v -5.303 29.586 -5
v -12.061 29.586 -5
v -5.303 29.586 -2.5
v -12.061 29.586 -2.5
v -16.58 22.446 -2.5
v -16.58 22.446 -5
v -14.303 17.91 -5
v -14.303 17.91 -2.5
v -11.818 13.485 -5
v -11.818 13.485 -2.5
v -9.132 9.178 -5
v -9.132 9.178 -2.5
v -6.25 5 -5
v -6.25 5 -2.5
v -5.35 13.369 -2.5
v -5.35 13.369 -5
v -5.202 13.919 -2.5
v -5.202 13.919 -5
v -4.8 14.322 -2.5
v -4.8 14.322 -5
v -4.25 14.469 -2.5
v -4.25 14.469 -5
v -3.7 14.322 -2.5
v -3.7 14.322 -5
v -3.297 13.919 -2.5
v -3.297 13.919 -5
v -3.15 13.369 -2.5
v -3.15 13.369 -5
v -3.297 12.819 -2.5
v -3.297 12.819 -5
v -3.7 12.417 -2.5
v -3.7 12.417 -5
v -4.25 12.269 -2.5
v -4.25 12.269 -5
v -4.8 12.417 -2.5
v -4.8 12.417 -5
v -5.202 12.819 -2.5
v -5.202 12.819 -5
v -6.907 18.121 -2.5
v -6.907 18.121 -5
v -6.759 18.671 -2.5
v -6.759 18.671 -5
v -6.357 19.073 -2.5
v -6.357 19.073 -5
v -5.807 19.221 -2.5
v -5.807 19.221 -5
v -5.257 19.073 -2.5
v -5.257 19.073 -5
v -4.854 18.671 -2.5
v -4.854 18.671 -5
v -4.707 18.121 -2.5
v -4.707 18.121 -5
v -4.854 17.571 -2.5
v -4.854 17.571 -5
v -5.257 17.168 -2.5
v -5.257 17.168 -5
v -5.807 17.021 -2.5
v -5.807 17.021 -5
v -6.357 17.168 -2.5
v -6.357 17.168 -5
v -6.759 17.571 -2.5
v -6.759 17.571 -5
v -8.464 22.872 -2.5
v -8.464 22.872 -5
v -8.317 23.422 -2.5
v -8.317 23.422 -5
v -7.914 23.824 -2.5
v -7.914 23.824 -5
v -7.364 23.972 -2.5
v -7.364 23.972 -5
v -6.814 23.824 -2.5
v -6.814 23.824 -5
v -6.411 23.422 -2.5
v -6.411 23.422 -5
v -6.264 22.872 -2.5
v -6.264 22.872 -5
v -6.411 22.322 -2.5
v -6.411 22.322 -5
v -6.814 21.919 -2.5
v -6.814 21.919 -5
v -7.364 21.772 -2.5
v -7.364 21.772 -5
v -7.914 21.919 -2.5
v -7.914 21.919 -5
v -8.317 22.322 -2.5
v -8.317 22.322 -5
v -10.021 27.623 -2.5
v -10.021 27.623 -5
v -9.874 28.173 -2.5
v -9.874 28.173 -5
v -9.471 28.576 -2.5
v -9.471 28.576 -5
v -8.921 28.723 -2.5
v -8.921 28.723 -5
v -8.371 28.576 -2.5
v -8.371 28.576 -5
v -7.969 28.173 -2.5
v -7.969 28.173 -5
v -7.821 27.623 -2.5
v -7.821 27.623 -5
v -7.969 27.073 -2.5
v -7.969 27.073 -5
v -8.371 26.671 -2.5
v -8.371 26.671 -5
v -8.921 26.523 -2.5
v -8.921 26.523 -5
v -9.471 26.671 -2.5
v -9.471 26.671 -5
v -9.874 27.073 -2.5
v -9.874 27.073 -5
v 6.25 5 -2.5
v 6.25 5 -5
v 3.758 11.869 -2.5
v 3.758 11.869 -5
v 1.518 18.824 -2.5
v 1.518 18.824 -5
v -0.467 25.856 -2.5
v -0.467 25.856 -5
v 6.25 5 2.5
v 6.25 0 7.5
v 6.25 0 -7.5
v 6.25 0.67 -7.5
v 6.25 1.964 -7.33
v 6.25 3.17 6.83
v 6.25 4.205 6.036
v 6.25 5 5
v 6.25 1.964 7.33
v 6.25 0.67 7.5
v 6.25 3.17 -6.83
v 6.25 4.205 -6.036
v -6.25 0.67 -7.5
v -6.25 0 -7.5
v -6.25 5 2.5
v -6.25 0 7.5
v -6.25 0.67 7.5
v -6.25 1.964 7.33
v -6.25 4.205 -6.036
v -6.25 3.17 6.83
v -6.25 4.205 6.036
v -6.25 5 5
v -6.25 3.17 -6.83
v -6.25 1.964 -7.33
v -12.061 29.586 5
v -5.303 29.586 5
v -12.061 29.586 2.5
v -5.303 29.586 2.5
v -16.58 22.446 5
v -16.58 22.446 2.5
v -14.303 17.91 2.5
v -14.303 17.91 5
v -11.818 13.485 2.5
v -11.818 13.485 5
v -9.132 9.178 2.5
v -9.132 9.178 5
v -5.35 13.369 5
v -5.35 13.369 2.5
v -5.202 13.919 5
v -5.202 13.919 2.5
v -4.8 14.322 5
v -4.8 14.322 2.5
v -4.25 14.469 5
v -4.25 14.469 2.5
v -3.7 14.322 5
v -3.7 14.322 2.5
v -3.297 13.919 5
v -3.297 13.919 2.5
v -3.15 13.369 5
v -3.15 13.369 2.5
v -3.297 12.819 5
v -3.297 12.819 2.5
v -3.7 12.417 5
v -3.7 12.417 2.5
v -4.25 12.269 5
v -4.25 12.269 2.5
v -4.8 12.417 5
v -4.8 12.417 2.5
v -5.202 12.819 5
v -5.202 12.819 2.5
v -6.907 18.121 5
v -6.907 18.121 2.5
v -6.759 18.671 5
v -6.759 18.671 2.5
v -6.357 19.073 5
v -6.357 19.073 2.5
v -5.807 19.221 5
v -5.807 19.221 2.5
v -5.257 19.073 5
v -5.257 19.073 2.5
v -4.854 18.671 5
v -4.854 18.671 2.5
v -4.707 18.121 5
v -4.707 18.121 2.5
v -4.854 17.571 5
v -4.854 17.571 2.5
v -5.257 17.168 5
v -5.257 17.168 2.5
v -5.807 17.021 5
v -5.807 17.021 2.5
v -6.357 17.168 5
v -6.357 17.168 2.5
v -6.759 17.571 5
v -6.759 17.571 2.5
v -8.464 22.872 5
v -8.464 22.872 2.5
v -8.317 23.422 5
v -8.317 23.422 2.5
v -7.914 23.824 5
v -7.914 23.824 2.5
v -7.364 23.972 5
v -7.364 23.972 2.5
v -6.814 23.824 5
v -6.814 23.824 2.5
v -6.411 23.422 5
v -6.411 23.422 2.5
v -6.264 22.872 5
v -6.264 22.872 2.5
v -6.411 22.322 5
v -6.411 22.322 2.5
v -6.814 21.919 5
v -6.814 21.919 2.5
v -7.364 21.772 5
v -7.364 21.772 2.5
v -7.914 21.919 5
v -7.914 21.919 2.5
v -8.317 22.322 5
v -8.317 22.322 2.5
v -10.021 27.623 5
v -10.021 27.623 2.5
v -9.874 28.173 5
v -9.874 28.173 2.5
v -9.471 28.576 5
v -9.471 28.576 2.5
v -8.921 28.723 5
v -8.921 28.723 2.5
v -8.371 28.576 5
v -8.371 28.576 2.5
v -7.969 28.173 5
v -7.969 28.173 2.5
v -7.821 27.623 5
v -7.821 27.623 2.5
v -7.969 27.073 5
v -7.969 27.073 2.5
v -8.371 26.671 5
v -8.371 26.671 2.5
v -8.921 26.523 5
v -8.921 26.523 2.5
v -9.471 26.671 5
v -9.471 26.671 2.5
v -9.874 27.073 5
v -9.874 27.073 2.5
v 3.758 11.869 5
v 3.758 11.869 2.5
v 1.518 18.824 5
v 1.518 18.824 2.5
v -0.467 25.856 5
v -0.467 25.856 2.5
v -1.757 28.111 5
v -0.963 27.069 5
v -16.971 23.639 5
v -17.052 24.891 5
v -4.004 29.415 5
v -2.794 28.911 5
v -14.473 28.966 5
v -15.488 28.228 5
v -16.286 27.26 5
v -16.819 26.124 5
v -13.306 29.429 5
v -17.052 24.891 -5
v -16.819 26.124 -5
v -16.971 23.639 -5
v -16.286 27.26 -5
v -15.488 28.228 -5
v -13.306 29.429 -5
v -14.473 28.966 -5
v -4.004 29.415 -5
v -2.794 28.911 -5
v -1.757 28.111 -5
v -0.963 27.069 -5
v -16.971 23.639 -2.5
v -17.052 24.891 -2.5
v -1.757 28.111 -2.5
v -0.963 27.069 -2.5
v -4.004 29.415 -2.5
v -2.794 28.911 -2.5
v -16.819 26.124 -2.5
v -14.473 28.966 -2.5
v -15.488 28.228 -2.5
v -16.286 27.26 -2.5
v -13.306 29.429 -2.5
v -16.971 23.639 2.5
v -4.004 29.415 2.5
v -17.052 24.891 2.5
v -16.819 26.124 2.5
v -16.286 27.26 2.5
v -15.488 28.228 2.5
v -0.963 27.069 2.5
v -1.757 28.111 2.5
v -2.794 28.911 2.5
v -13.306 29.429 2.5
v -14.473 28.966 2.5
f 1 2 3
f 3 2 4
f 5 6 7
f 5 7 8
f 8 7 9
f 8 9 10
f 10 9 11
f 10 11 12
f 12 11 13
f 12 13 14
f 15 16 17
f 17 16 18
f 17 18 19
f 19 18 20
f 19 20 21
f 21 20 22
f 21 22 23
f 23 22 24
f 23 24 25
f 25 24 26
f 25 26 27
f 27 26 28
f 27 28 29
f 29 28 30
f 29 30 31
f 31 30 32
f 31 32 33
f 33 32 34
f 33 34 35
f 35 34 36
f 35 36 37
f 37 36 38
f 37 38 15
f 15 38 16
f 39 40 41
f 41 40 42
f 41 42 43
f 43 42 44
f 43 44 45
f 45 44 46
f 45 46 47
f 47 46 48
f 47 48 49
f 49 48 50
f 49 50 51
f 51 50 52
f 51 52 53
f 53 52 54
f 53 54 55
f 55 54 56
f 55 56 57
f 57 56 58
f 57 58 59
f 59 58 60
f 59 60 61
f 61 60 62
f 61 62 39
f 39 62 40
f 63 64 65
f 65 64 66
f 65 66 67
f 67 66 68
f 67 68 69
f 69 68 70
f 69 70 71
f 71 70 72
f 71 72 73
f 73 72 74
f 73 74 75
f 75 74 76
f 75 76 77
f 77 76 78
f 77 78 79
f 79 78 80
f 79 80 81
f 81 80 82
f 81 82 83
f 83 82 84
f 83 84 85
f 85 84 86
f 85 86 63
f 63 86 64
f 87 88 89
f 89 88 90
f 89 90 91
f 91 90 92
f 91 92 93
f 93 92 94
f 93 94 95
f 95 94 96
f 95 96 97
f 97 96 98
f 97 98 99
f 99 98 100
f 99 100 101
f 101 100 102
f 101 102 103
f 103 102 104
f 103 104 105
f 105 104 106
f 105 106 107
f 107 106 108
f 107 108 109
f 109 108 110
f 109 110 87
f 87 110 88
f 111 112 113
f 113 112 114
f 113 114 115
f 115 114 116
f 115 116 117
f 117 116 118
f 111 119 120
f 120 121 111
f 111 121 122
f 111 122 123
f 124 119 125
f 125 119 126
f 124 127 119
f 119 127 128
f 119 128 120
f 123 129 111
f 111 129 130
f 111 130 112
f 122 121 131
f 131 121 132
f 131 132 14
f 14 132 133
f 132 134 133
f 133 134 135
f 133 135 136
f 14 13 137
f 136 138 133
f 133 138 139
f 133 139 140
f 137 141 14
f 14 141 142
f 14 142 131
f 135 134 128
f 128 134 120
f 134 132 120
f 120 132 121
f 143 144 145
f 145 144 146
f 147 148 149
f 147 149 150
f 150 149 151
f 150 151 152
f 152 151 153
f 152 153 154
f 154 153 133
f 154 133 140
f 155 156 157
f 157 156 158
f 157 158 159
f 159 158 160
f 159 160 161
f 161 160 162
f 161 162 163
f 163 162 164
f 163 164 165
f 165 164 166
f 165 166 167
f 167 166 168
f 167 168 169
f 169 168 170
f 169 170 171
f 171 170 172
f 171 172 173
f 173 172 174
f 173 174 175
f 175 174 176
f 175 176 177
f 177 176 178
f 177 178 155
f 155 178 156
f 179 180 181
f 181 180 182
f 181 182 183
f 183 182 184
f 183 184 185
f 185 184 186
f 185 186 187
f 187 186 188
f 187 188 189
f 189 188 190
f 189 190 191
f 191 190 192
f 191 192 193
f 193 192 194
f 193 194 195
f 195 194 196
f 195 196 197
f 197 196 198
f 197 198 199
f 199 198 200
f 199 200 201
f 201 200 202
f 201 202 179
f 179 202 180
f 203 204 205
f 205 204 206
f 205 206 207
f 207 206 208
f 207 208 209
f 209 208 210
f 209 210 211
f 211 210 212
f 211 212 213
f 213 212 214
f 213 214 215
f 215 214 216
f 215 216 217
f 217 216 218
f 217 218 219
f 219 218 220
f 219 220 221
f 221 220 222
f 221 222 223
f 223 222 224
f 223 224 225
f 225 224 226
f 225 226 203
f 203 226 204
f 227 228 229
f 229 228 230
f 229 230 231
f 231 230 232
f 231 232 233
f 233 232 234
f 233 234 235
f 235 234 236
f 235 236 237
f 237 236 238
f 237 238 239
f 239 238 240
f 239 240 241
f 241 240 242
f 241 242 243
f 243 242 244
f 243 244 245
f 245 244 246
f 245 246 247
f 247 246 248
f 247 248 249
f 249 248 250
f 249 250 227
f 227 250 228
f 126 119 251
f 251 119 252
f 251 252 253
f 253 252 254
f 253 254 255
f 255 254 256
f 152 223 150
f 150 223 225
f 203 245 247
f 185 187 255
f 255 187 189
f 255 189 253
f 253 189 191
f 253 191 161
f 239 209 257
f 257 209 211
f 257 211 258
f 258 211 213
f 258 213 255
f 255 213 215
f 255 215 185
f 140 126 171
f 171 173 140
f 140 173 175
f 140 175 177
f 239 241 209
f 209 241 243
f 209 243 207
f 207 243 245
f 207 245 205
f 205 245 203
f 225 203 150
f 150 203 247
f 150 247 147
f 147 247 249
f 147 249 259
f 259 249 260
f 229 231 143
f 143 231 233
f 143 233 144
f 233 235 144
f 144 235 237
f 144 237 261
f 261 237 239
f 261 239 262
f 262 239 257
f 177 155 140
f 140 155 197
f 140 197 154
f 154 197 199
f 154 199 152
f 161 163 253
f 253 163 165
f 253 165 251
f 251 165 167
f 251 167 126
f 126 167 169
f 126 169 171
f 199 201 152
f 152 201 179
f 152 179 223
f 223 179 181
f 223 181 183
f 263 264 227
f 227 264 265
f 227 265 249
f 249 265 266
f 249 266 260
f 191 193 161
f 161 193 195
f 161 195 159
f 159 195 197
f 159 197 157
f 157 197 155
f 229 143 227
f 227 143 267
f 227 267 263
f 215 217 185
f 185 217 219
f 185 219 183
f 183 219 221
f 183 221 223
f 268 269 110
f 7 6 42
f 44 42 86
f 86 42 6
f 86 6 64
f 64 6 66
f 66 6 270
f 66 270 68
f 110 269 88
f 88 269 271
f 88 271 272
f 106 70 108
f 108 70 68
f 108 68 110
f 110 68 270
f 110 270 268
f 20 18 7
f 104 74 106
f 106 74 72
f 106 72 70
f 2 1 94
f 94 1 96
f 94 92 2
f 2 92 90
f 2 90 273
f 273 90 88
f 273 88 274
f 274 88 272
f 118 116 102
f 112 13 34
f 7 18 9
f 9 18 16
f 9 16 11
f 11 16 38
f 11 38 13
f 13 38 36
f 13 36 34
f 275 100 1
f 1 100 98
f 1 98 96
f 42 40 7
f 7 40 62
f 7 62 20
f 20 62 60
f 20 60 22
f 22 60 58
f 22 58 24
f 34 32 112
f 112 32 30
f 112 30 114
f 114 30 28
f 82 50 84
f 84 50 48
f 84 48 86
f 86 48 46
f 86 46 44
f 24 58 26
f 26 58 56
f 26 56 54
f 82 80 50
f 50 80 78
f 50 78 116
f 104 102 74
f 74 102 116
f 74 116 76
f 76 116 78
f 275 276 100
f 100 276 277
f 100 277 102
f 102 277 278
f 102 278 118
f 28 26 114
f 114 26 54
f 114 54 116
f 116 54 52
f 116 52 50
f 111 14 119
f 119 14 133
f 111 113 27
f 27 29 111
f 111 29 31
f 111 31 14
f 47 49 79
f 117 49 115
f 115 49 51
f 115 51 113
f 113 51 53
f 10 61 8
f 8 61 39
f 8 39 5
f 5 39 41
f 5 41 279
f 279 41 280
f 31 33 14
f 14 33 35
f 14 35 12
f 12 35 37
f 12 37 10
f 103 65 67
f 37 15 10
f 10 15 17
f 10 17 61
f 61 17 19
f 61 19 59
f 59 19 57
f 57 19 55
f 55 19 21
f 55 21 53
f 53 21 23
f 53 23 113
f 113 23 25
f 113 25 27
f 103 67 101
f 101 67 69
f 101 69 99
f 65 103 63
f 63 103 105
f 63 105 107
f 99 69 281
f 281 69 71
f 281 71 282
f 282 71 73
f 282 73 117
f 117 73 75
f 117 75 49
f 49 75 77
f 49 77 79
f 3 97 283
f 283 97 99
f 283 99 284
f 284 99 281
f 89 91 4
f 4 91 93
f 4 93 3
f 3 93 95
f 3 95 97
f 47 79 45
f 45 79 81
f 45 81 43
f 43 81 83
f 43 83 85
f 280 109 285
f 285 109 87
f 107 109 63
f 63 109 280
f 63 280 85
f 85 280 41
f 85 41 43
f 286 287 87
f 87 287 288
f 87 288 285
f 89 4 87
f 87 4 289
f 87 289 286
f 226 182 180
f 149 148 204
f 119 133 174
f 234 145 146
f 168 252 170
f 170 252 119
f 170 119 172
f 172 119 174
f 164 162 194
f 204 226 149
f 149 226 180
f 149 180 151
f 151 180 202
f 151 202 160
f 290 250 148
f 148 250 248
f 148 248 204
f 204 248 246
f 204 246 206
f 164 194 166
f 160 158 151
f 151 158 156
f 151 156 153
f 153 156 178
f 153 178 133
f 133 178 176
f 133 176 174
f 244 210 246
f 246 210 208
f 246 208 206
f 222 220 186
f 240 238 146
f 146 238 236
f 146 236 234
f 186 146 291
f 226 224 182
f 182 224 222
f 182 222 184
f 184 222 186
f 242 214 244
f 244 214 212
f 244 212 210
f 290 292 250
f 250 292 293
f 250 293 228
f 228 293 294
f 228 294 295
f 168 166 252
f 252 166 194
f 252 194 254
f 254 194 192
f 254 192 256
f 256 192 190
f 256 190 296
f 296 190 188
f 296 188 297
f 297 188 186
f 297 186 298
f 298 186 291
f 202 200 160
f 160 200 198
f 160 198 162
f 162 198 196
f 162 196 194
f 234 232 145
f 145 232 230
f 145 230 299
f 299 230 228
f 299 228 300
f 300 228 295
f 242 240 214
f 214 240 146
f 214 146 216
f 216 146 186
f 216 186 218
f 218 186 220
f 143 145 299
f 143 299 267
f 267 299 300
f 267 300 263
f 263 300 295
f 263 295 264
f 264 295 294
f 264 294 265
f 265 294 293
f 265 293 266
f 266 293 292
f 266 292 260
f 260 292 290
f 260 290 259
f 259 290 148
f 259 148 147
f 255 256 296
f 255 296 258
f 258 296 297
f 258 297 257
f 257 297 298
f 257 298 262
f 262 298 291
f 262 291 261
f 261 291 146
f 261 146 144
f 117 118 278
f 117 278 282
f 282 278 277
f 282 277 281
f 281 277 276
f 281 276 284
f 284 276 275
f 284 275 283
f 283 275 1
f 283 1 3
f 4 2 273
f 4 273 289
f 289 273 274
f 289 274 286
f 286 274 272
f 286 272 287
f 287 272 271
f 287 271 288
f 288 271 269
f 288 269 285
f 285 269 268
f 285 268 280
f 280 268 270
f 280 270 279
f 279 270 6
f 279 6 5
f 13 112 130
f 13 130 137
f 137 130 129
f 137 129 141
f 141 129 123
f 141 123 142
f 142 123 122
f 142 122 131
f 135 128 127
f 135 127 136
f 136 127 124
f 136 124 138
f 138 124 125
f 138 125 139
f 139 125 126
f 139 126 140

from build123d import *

# Parameters (mm, degrees)
SKETCH1_W           = 12.5
SKETCH1_H           = 15
BOSS_EXTRUDE1_DEPTH = 5
SKETCH12_R          = 1.1
BOSS_EXTRUDE3_DEPTH = 10
CUT_EXTRUDE2_REACH  = 38.305
SKETCH13_W          = 40
SKETCH13_H          = 5
FILLET2_R           = 5


with BuildPart() as part:
    # Sketch1 → Boss-Extrude1 (new body)
    with BuildSketch(Plane(origin=(0, 0, 0), x_dir=(1, 0, 0), z_dir=(0, 1, 0))):
        Rectangle(SKETCH1_W, SKETCH1_H)
    extrude(amount=BOSS_EXTRUDE1_DEPTH)

    # Sketch12 → Boss-Extrude3 (add)
    with BuildSketch(Plane(origin=(0, 0, -5), x_dir=(-1, 0, 0), z_dir=(0, 0, -1))):
        with BuildLine():
            Line((19.657908058, 29.586368397), (1.407908058, 29.586368397))
            ThreePointArc((1.407908058, 29.586368397), (-2.024927187, 17.169805211), (-6.25, 5))
            Line((-6.25, 5), (6.25, 5))
            ThreePointArc((6.25, 5), (13.739573521, 16.86475517), (19.657908058, 29.586368397))
        make_face()
        with Locations((4.249543893, 13.369198977)):
            Circle(SKETCH12_R, mode=Mode.SUBTRACT)
        with Locations((5.806784348, 18.120514812)):
            Circle(SKETCH12_R, mode=Mode.SUBTRACT)
        with Locations((7.364024803, 22.871830647)):
            Circle(SKETCH12_R, mode=Mode.SUBTRACT)
        with Locations((8.921265258, 27.623146482)):
            Circle(SKETCH12_R, mode=Mode.SUBTRACT)
    extrude(amount=-BOSS_EXTRUDE3_DEPTH)

    # Cut-Extrude2: up to this face of the body (flat: up to its plane)
    cut_extrude2_end = Plane(part.part.faces().sort_by_distance((0, 5, 6.25))[0])
    # Sketch13 → Cut-Extrude2 (cut, up to the picked face)
    with BuildSketch(Plane(origin=(0, 29.586368397, 0), x_dir=(1, 0, 0), z_dir=(0, 1, 0)), mode=Mode.PRIVATE) as cut_extrude2_sk1:
        Rectangle(SKETCH13_W, SKETCH13_H)
    cut_extrude2_tool1 = split(extrude(cut_extrude2_sk1.sketch, amount=-CUT_EXTRUDE2_REACH, mode=Mode.PRIVATE), bisect_by=cut_extrude2_end, keep=Keep.BOTH, mode=Mode.PRIVATE)
    add(cut_extrude2_tool1.solids().sort_by(Axis((0, 29.586368, 0), (0, -1, 0)))[0], mode=Mode.SUBTRACT)

    # Fillet2
    # the kernel refuses this fillet: 5 mm, written as the material it takes off along each edge
    with BuildSketch(Plane(origin=(-19.657908058, 29.586368397, -16.938005308), x_dir=(0.3958255754909857, -0.9183257122542251, 0), z_dir=(0, 0, 1)), Plane(origin=(-19.657908058, 29.586368397, -24.438005308), x_dir=(0.3958255754909857, -0.9183257122542251, 0), z_dir=(0, 0, 1))) as fillet2_piece_1:
        with BuildLine():
            CenterArc((7.598492984, 4.996876412), FILLET2_R, 156.682526959, 115.342832392)
            Line((3.006864423, 6.97600429), (2.915031851, 7.015586847))
            Line((2.915031851, 7.015586847), (-0.091832571, 0.039582558))
            Line((-0.091832571, 0.039582558), (-0.003534183, -0.099937528))
            ThreePointArc((-0.003534183, -0.099937528), (3.887601062, -0.168718929), (7.778736306, -0.099937528))
            Line((7.778736306, -0.099937528), (7.775202123, 0))
        make_face()
    extrude(amount=41.376010616, mode=Mode.SUBTRACT)
    with BuildSketch(Plane(origin=(-1.407908058, 29.586368397, -7.237373954), x_dir=(0.2446328232402741, -0.96961579081278, 0), z_dir=(0, 0, 1)), Plane(origin=(-1.407908058, 29.586368397, -14.737373954), x_dir=(0.2446328232402737, -0.9696157908127802, 0), z_dir=(0, 0, 1))) as fillet2_piece_2:
        with BuildLine():
            CenterArc((3.895246442, -4.999768735), FILLET2_R, 90.551073141, 75.28879109)
            Line((-0.952832513, -3.776604619), (-1.049794092, -3.752141336))
            Line((-1.049794092, -3.752141336), (-0.096961579, 0.024463282))
            Line((-0.096961579, 0.024463282), (0.000961789, 0.099995375))
            ThreePointArc((0.000961789, 0.099995375), (1.92357849, 0.090749401), (3.84619519, 0.099995375))
            Line((3.84619519, 0.099995375), (3.847156979, 0))
        make_face()
    extrude(amount=21.974747908, mode=Mode.SUBTRACT)
    with BuildSketch(Plane(origin=(17.075317547, 5, -7.5), x_dir=(0, -1, 0), z_dir=(-1, 0, 0)), Plane(origin=(-17.075317547, 5, 7.5), x_dir=(0, -1, 0), z_dir=(1, 0, 0))) as fillet2_piece_3:
        with BuildLine():
            CenterArc((4.330127019, 5), FILLET2_R, 210, 60)
            Line((0, 2.5), (-0.08660254, 2.45))
            ThreePointArc((-0.08660254, 2.45), (-0.1, 1.25), (-0.1, 0))
            Line((-0.1, 0), (0, -0.1))
            Line((0, -0.1), (4.330127019, -0.1))
            Line((4.330127019, -0.1), (4.330127019, 0))
        make_face()
    extrude(amount=34.150635095, mode=Mode.SUBTRACT)


solid = part.part
